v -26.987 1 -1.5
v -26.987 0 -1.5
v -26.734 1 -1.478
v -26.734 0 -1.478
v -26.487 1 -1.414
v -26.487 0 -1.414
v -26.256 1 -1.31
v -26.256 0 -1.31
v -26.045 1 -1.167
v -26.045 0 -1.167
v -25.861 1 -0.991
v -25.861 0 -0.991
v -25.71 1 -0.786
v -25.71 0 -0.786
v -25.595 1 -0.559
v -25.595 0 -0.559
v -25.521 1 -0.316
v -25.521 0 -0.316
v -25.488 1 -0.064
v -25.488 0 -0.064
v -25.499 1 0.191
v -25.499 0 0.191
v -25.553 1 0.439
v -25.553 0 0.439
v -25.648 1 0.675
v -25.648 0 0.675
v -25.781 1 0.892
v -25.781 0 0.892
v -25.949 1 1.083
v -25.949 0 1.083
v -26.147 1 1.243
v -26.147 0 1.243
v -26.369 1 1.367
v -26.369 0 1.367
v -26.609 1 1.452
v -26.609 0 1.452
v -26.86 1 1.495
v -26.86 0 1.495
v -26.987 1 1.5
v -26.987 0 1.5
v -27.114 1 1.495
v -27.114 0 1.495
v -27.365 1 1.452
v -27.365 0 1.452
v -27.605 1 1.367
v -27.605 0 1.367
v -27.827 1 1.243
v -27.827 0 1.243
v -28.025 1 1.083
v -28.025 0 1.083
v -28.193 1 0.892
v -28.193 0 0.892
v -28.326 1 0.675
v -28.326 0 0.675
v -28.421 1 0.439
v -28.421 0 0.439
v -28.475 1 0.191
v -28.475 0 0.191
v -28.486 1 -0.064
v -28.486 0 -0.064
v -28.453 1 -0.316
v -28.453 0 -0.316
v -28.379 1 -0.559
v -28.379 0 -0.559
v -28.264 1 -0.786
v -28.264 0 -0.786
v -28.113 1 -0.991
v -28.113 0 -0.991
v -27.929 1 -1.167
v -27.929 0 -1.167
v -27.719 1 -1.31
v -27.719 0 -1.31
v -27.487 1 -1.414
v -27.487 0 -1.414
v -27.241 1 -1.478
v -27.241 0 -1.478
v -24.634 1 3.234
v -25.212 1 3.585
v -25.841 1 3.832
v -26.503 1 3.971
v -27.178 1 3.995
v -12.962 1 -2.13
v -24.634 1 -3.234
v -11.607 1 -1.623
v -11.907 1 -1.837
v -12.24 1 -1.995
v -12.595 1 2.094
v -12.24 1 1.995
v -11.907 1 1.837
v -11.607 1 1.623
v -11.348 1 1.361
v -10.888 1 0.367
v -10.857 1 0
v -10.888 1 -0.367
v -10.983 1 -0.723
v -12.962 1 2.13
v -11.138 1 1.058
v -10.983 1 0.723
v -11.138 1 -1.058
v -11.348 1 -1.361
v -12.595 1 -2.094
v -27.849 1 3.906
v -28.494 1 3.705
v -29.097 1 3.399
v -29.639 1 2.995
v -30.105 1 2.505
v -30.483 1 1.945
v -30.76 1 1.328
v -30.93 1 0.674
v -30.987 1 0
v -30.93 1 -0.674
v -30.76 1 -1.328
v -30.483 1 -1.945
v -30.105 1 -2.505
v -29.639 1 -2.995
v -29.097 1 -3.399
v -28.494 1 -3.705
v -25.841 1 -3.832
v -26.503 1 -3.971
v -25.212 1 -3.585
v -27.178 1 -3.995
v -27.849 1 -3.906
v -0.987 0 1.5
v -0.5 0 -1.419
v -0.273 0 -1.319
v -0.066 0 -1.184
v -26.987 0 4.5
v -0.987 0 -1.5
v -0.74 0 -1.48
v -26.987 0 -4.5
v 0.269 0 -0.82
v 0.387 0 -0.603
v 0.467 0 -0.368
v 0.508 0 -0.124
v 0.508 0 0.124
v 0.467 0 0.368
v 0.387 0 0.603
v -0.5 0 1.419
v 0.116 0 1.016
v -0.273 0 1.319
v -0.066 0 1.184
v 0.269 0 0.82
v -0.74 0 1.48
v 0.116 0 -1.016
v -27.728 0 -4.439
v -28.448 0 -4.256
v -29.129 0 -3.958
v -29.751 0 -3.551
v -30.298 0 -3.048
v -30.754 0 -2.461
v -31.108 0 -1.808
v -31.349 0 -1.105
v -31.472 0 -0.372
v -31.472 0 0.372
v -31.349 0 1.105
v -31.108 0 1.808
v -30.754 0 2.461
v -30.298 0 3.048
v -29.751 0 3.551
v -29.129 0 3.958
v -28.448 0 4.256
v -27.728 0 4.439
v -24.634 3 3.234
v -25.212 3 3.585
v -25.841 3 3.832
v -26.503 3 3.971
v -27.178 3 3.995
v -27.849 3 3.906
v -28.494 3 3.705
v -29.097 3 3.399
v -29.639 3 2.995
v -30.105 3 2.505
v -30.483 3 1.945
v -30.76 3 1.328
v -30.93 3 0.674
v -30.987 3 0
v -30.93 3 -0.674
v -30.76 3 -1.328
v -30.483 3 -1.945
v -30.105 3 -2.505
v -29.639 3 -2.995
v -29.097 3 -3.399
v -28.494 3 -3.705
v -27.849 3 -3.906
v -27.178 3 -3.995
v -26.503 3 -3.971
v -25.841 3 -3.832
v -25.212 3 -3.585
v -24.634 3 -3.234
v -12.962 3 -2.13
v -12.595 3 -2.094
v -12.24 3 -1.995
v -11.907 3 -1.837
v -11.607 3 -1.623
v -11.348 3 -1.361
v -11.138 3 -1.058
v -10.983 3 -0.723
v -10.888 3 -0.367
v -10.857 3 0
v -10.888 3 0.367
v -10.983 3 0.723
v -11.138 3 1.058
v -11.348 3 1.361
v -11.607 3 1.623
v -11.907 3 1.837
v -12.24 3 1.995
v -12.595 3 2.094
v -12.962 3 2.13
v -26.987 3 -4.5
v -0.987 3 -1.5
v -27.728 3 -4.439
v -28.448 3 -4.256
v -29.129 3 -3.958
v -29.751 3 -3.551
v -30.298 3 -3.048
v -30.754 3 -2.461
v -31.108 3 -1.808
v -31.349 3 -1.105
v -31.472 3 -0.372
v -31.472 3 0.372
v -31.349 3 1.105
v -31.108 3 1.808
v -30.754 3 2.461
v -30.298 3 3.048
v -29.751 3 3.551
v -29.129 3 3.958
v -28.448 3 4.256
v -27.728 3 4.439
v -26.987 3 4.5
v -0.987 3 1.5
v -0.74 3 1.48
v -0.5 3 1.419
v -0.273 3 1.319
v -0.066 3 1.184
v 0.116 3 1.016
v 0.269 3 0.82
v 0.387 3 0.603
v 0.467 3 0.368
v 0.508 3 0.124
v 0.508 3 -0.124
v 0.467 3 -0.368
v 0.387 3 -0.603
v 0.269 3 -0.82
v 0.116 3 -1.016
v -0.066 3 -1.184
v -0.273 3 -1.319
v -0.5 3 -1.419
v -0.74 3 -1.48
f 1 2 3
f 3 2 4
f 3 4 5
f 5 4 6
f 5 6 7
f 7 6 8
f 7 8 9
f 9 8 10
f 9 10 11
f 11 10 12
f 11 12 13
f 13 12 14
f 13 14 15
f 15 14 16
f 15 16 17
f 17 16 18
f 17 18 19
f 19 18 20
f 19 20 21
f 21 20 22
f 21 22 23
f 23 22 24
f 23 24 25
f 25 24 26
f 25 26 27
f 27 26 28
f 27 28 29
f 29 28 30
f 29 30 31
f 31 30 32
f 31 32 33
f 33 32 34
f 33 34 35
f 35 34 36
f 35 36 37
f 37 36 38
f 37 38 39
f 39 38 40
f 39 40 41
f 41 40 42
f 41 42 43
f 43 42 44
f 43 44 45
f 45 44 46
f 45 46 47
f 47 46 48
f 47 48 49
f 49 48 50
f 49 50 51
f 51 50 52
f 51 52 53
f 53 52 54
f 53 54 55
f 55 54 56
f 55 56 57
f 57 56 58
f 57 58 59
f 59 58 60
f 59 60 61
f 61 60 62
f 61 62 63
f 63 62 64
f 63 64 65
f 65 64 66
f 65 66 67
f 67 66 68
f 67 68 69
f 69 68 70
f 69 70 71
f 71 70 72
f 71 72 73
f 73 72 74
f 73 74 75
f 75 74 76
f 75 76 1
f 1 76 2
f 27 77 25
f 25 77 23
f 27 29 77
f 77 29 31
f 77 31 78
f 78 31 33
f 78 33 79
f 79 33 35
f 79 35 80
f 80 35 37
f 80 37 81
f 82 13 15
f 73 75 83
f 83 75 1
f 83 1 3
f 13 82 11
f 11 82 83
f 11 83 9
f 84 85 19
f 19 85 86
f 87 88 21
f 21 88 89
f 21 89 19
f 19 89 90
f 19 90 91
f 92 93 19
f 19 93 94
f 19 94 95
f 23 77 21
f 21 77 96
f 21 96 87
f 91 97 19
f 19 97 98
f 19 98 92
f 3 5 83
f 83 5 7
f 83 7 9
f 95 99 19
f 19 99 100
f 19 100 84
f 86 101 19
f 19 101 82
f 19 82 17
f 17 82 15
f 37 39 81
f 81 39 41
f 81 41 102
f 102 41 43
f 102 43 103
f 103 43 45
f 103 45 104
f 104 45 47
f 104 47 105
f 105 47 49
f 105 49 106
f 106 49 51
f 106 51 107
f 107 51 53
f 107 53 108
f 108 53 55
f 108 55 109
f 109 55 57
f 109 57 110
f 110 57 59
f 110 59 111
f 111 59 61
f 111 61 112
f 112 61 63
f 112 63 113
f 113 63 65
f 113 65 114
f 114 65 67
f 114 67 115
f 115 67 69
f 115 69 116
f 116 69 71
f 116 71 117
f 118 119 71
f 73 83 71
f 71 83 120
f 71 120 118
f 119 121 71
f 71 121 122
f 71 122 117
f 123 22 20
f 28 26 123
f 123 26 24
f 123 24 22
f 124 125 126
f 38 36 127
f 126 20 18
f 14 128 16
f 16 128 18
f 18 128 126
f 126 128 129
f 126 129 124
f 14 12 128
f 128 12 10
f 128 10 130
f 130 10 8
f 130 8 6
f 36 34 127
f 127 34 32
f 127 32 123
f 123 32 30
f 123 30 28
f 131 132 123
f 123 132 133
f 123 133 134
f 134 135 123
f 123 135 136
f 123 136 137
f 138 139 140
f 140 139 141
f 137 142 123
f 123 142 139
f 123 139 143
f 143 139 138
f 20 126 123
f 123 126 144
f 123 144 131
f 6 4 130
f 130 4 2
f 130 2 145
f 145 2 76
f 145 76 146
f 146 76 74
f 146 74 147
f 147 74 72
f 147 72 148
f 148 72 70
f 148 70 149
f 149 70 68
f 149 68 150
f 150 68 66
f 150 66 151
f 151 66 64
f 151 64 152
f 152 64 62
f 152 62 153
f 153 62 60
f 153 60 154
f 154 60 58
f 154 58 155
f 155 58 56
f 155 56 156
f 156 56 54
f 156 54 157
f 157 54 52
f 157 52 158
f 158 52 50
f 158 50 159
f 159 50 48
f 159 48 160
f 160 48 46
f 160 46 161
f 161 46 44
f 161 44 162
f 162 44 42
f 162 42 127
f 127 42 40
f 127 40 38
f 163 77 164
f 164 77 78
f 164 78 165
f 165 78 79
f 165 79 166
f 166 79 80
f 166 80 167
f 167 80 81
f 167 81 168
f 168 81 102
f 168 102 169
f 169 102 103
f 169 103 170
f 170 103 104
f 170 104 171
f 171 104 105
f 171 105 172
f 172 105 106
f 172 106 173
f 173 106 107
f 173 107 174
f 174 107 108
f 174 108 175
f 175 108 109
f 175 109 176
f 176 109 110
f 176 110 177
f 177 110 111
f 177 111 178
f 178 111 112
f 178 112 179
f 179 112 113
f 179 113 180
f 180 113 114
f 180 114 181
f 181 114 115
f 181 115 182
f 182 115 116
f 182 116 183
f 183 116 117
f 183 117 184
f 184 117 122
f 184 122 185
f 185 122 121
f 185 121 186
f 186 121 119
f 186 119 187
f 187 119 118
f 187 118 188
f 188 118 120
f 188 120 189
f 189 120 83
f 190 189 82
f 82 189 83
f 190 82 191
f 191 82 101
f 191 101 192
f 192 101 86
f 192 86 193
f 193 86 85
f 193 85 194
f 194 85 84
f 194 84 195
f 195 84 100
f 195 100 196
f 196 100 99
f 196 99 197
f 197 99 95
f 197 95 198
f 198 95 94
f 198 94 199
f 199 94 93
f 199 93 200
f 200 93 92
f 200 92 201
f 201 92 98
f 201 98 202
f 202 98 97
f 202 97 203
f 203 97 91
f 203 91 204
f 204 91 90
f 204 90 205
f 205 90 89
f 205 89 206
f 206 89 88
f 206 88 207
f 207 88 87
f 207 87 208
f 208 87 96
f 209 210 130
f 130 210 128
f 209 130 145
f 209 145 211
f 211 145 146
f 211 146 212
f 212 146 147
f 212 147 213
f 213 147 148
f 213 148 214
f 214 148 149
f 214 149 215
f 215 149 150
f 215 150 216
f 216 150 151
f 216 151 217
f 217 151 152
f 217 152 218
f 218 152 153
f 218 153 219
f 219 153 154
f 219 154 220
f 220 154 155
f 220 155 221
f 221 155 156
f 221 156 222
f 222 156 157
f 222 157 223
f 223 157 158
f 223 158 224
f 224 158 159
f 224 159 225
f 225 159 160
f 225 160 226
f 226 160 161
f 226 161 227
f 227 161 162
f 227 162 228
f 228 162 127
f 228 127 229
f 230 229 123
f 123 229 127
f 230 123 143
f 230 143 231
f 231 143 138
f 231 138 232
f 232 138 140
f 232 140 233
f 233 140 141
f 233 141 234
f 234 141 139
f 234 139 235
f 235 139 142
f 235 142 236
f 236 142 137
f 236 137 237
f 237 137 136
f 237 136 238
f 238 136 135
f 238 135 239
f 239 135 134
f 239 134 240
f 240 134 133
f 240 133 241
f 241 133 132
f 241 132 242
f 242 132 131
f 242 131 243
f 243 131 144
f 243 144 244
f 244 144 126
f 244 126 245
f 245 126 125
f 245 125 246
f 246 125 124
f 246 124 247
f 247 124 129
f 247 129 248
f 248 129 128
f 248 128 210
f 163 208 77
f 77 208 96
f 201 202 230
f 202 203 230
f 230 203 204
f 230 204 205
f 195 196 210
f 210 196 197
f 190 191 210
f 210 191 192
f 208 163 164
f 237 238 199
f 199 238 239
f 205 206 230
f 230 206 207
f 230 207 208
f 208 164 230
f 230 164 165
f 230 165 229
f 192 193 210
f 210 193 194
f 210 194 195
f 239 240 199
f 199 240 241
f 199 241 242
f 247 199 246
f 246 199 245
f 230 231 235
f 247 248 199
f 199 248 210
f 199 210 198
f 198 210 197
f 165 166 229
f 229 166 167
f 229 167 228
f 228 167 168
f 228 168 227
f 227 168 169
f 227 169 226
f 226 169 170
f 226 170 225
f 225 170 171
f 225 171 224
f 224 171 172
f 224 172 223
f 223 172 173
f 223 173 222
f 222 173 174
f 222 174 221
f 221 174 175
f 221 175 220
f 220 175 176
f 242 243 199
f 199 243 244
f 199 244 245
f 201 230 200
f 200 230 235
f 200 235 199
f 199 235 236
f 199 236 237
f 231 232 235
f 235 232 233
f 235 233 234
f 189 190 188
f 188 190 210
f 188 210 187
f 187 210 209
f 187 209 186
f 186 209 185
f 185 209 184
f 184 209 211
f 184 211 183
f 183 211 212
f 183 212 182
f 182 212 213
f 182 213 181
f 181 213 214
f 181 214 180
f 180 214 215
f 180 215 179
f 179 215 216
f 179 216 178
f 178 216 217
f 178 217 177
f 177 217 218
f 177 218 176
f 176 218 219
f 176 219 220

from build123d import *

# Parameters (mm, degrees)
SKETCH2_R           = 1.5
BOSS_EXTRUDE1_DEPTH = 1
BOSS_EXTRUDE2_DEPTH = 3


with BuildPart() as part:
    # Sketch2 → Boss-Extrude1 (new body)
    with BuildSketch(Plane(origin=(0, 0, 0), x_dir=(1, 0, 0), z_dir=(0, 1, 0))):
        with BuildLine():
            Line((-24.633695323, -3.234416395), (-12.961942578, -2.130426094))
            ThreePointArc((-12.961942578, -2.130426094), (-10.856533145, 0), (-12.961942578, 2.130426094))
            Line((-12.961942578, 2.130426094), (-24.633695323, 3.234416395))
            ThreePointArc((-24.633695323, 3.234416395), (-30.987107864, 0), (-24.633695323, -3.234416395))
        make_face()
        with Locations((-26.987107864, 0)):
            Circle(SKETCH2_R, mode=Mode.SUBTRACT)
    extrude(amount=BOSS_EXTRUDE1_DEPTH)

    # Sketch2<3> → Boss-Extrude2 (add)
    with BuildSketch(Plane(origin=(0, 0, 0), x_dir=(1, 0, 0), z_dir=(0, 1, 0))):
        with BuildLine():
            ThreePointArc((-26.987107864, 4.5), (-31.487107864, 0), (-26.987107864, -4.5))
            Line((-26.987107864, -4.5), (-0.987107864, -1.5))
            ThreePointArc((-0.987107864, -1.5), (0.512892136, 0), (-0.987107864, 1.5))
            Line((-0.987107864, 1.5), (-26.987107864, 4.5))
        make_face()
        with BuildLine():
            Line((-24.633695323, 3.234416395), (-12.961942578, 2.130426094))
            ThreePointArc((-12.961942578, 2.130426094), (-10.856533145, 0), (-12.961942578, -2.130426094))
            Line((-12.961942578, -2.130426094), (-24.633695323, -3.234416395))
            ThreePointArc((-24.633695323, -3.234416395), (-30.987107864, 0), (-24.633695323, 3.234416395))
        make_face(mode=Mode.SUBTRACT)
    extrude(amount=BOSS_EXTRUDE2_DEPTH)


solid = part.part
